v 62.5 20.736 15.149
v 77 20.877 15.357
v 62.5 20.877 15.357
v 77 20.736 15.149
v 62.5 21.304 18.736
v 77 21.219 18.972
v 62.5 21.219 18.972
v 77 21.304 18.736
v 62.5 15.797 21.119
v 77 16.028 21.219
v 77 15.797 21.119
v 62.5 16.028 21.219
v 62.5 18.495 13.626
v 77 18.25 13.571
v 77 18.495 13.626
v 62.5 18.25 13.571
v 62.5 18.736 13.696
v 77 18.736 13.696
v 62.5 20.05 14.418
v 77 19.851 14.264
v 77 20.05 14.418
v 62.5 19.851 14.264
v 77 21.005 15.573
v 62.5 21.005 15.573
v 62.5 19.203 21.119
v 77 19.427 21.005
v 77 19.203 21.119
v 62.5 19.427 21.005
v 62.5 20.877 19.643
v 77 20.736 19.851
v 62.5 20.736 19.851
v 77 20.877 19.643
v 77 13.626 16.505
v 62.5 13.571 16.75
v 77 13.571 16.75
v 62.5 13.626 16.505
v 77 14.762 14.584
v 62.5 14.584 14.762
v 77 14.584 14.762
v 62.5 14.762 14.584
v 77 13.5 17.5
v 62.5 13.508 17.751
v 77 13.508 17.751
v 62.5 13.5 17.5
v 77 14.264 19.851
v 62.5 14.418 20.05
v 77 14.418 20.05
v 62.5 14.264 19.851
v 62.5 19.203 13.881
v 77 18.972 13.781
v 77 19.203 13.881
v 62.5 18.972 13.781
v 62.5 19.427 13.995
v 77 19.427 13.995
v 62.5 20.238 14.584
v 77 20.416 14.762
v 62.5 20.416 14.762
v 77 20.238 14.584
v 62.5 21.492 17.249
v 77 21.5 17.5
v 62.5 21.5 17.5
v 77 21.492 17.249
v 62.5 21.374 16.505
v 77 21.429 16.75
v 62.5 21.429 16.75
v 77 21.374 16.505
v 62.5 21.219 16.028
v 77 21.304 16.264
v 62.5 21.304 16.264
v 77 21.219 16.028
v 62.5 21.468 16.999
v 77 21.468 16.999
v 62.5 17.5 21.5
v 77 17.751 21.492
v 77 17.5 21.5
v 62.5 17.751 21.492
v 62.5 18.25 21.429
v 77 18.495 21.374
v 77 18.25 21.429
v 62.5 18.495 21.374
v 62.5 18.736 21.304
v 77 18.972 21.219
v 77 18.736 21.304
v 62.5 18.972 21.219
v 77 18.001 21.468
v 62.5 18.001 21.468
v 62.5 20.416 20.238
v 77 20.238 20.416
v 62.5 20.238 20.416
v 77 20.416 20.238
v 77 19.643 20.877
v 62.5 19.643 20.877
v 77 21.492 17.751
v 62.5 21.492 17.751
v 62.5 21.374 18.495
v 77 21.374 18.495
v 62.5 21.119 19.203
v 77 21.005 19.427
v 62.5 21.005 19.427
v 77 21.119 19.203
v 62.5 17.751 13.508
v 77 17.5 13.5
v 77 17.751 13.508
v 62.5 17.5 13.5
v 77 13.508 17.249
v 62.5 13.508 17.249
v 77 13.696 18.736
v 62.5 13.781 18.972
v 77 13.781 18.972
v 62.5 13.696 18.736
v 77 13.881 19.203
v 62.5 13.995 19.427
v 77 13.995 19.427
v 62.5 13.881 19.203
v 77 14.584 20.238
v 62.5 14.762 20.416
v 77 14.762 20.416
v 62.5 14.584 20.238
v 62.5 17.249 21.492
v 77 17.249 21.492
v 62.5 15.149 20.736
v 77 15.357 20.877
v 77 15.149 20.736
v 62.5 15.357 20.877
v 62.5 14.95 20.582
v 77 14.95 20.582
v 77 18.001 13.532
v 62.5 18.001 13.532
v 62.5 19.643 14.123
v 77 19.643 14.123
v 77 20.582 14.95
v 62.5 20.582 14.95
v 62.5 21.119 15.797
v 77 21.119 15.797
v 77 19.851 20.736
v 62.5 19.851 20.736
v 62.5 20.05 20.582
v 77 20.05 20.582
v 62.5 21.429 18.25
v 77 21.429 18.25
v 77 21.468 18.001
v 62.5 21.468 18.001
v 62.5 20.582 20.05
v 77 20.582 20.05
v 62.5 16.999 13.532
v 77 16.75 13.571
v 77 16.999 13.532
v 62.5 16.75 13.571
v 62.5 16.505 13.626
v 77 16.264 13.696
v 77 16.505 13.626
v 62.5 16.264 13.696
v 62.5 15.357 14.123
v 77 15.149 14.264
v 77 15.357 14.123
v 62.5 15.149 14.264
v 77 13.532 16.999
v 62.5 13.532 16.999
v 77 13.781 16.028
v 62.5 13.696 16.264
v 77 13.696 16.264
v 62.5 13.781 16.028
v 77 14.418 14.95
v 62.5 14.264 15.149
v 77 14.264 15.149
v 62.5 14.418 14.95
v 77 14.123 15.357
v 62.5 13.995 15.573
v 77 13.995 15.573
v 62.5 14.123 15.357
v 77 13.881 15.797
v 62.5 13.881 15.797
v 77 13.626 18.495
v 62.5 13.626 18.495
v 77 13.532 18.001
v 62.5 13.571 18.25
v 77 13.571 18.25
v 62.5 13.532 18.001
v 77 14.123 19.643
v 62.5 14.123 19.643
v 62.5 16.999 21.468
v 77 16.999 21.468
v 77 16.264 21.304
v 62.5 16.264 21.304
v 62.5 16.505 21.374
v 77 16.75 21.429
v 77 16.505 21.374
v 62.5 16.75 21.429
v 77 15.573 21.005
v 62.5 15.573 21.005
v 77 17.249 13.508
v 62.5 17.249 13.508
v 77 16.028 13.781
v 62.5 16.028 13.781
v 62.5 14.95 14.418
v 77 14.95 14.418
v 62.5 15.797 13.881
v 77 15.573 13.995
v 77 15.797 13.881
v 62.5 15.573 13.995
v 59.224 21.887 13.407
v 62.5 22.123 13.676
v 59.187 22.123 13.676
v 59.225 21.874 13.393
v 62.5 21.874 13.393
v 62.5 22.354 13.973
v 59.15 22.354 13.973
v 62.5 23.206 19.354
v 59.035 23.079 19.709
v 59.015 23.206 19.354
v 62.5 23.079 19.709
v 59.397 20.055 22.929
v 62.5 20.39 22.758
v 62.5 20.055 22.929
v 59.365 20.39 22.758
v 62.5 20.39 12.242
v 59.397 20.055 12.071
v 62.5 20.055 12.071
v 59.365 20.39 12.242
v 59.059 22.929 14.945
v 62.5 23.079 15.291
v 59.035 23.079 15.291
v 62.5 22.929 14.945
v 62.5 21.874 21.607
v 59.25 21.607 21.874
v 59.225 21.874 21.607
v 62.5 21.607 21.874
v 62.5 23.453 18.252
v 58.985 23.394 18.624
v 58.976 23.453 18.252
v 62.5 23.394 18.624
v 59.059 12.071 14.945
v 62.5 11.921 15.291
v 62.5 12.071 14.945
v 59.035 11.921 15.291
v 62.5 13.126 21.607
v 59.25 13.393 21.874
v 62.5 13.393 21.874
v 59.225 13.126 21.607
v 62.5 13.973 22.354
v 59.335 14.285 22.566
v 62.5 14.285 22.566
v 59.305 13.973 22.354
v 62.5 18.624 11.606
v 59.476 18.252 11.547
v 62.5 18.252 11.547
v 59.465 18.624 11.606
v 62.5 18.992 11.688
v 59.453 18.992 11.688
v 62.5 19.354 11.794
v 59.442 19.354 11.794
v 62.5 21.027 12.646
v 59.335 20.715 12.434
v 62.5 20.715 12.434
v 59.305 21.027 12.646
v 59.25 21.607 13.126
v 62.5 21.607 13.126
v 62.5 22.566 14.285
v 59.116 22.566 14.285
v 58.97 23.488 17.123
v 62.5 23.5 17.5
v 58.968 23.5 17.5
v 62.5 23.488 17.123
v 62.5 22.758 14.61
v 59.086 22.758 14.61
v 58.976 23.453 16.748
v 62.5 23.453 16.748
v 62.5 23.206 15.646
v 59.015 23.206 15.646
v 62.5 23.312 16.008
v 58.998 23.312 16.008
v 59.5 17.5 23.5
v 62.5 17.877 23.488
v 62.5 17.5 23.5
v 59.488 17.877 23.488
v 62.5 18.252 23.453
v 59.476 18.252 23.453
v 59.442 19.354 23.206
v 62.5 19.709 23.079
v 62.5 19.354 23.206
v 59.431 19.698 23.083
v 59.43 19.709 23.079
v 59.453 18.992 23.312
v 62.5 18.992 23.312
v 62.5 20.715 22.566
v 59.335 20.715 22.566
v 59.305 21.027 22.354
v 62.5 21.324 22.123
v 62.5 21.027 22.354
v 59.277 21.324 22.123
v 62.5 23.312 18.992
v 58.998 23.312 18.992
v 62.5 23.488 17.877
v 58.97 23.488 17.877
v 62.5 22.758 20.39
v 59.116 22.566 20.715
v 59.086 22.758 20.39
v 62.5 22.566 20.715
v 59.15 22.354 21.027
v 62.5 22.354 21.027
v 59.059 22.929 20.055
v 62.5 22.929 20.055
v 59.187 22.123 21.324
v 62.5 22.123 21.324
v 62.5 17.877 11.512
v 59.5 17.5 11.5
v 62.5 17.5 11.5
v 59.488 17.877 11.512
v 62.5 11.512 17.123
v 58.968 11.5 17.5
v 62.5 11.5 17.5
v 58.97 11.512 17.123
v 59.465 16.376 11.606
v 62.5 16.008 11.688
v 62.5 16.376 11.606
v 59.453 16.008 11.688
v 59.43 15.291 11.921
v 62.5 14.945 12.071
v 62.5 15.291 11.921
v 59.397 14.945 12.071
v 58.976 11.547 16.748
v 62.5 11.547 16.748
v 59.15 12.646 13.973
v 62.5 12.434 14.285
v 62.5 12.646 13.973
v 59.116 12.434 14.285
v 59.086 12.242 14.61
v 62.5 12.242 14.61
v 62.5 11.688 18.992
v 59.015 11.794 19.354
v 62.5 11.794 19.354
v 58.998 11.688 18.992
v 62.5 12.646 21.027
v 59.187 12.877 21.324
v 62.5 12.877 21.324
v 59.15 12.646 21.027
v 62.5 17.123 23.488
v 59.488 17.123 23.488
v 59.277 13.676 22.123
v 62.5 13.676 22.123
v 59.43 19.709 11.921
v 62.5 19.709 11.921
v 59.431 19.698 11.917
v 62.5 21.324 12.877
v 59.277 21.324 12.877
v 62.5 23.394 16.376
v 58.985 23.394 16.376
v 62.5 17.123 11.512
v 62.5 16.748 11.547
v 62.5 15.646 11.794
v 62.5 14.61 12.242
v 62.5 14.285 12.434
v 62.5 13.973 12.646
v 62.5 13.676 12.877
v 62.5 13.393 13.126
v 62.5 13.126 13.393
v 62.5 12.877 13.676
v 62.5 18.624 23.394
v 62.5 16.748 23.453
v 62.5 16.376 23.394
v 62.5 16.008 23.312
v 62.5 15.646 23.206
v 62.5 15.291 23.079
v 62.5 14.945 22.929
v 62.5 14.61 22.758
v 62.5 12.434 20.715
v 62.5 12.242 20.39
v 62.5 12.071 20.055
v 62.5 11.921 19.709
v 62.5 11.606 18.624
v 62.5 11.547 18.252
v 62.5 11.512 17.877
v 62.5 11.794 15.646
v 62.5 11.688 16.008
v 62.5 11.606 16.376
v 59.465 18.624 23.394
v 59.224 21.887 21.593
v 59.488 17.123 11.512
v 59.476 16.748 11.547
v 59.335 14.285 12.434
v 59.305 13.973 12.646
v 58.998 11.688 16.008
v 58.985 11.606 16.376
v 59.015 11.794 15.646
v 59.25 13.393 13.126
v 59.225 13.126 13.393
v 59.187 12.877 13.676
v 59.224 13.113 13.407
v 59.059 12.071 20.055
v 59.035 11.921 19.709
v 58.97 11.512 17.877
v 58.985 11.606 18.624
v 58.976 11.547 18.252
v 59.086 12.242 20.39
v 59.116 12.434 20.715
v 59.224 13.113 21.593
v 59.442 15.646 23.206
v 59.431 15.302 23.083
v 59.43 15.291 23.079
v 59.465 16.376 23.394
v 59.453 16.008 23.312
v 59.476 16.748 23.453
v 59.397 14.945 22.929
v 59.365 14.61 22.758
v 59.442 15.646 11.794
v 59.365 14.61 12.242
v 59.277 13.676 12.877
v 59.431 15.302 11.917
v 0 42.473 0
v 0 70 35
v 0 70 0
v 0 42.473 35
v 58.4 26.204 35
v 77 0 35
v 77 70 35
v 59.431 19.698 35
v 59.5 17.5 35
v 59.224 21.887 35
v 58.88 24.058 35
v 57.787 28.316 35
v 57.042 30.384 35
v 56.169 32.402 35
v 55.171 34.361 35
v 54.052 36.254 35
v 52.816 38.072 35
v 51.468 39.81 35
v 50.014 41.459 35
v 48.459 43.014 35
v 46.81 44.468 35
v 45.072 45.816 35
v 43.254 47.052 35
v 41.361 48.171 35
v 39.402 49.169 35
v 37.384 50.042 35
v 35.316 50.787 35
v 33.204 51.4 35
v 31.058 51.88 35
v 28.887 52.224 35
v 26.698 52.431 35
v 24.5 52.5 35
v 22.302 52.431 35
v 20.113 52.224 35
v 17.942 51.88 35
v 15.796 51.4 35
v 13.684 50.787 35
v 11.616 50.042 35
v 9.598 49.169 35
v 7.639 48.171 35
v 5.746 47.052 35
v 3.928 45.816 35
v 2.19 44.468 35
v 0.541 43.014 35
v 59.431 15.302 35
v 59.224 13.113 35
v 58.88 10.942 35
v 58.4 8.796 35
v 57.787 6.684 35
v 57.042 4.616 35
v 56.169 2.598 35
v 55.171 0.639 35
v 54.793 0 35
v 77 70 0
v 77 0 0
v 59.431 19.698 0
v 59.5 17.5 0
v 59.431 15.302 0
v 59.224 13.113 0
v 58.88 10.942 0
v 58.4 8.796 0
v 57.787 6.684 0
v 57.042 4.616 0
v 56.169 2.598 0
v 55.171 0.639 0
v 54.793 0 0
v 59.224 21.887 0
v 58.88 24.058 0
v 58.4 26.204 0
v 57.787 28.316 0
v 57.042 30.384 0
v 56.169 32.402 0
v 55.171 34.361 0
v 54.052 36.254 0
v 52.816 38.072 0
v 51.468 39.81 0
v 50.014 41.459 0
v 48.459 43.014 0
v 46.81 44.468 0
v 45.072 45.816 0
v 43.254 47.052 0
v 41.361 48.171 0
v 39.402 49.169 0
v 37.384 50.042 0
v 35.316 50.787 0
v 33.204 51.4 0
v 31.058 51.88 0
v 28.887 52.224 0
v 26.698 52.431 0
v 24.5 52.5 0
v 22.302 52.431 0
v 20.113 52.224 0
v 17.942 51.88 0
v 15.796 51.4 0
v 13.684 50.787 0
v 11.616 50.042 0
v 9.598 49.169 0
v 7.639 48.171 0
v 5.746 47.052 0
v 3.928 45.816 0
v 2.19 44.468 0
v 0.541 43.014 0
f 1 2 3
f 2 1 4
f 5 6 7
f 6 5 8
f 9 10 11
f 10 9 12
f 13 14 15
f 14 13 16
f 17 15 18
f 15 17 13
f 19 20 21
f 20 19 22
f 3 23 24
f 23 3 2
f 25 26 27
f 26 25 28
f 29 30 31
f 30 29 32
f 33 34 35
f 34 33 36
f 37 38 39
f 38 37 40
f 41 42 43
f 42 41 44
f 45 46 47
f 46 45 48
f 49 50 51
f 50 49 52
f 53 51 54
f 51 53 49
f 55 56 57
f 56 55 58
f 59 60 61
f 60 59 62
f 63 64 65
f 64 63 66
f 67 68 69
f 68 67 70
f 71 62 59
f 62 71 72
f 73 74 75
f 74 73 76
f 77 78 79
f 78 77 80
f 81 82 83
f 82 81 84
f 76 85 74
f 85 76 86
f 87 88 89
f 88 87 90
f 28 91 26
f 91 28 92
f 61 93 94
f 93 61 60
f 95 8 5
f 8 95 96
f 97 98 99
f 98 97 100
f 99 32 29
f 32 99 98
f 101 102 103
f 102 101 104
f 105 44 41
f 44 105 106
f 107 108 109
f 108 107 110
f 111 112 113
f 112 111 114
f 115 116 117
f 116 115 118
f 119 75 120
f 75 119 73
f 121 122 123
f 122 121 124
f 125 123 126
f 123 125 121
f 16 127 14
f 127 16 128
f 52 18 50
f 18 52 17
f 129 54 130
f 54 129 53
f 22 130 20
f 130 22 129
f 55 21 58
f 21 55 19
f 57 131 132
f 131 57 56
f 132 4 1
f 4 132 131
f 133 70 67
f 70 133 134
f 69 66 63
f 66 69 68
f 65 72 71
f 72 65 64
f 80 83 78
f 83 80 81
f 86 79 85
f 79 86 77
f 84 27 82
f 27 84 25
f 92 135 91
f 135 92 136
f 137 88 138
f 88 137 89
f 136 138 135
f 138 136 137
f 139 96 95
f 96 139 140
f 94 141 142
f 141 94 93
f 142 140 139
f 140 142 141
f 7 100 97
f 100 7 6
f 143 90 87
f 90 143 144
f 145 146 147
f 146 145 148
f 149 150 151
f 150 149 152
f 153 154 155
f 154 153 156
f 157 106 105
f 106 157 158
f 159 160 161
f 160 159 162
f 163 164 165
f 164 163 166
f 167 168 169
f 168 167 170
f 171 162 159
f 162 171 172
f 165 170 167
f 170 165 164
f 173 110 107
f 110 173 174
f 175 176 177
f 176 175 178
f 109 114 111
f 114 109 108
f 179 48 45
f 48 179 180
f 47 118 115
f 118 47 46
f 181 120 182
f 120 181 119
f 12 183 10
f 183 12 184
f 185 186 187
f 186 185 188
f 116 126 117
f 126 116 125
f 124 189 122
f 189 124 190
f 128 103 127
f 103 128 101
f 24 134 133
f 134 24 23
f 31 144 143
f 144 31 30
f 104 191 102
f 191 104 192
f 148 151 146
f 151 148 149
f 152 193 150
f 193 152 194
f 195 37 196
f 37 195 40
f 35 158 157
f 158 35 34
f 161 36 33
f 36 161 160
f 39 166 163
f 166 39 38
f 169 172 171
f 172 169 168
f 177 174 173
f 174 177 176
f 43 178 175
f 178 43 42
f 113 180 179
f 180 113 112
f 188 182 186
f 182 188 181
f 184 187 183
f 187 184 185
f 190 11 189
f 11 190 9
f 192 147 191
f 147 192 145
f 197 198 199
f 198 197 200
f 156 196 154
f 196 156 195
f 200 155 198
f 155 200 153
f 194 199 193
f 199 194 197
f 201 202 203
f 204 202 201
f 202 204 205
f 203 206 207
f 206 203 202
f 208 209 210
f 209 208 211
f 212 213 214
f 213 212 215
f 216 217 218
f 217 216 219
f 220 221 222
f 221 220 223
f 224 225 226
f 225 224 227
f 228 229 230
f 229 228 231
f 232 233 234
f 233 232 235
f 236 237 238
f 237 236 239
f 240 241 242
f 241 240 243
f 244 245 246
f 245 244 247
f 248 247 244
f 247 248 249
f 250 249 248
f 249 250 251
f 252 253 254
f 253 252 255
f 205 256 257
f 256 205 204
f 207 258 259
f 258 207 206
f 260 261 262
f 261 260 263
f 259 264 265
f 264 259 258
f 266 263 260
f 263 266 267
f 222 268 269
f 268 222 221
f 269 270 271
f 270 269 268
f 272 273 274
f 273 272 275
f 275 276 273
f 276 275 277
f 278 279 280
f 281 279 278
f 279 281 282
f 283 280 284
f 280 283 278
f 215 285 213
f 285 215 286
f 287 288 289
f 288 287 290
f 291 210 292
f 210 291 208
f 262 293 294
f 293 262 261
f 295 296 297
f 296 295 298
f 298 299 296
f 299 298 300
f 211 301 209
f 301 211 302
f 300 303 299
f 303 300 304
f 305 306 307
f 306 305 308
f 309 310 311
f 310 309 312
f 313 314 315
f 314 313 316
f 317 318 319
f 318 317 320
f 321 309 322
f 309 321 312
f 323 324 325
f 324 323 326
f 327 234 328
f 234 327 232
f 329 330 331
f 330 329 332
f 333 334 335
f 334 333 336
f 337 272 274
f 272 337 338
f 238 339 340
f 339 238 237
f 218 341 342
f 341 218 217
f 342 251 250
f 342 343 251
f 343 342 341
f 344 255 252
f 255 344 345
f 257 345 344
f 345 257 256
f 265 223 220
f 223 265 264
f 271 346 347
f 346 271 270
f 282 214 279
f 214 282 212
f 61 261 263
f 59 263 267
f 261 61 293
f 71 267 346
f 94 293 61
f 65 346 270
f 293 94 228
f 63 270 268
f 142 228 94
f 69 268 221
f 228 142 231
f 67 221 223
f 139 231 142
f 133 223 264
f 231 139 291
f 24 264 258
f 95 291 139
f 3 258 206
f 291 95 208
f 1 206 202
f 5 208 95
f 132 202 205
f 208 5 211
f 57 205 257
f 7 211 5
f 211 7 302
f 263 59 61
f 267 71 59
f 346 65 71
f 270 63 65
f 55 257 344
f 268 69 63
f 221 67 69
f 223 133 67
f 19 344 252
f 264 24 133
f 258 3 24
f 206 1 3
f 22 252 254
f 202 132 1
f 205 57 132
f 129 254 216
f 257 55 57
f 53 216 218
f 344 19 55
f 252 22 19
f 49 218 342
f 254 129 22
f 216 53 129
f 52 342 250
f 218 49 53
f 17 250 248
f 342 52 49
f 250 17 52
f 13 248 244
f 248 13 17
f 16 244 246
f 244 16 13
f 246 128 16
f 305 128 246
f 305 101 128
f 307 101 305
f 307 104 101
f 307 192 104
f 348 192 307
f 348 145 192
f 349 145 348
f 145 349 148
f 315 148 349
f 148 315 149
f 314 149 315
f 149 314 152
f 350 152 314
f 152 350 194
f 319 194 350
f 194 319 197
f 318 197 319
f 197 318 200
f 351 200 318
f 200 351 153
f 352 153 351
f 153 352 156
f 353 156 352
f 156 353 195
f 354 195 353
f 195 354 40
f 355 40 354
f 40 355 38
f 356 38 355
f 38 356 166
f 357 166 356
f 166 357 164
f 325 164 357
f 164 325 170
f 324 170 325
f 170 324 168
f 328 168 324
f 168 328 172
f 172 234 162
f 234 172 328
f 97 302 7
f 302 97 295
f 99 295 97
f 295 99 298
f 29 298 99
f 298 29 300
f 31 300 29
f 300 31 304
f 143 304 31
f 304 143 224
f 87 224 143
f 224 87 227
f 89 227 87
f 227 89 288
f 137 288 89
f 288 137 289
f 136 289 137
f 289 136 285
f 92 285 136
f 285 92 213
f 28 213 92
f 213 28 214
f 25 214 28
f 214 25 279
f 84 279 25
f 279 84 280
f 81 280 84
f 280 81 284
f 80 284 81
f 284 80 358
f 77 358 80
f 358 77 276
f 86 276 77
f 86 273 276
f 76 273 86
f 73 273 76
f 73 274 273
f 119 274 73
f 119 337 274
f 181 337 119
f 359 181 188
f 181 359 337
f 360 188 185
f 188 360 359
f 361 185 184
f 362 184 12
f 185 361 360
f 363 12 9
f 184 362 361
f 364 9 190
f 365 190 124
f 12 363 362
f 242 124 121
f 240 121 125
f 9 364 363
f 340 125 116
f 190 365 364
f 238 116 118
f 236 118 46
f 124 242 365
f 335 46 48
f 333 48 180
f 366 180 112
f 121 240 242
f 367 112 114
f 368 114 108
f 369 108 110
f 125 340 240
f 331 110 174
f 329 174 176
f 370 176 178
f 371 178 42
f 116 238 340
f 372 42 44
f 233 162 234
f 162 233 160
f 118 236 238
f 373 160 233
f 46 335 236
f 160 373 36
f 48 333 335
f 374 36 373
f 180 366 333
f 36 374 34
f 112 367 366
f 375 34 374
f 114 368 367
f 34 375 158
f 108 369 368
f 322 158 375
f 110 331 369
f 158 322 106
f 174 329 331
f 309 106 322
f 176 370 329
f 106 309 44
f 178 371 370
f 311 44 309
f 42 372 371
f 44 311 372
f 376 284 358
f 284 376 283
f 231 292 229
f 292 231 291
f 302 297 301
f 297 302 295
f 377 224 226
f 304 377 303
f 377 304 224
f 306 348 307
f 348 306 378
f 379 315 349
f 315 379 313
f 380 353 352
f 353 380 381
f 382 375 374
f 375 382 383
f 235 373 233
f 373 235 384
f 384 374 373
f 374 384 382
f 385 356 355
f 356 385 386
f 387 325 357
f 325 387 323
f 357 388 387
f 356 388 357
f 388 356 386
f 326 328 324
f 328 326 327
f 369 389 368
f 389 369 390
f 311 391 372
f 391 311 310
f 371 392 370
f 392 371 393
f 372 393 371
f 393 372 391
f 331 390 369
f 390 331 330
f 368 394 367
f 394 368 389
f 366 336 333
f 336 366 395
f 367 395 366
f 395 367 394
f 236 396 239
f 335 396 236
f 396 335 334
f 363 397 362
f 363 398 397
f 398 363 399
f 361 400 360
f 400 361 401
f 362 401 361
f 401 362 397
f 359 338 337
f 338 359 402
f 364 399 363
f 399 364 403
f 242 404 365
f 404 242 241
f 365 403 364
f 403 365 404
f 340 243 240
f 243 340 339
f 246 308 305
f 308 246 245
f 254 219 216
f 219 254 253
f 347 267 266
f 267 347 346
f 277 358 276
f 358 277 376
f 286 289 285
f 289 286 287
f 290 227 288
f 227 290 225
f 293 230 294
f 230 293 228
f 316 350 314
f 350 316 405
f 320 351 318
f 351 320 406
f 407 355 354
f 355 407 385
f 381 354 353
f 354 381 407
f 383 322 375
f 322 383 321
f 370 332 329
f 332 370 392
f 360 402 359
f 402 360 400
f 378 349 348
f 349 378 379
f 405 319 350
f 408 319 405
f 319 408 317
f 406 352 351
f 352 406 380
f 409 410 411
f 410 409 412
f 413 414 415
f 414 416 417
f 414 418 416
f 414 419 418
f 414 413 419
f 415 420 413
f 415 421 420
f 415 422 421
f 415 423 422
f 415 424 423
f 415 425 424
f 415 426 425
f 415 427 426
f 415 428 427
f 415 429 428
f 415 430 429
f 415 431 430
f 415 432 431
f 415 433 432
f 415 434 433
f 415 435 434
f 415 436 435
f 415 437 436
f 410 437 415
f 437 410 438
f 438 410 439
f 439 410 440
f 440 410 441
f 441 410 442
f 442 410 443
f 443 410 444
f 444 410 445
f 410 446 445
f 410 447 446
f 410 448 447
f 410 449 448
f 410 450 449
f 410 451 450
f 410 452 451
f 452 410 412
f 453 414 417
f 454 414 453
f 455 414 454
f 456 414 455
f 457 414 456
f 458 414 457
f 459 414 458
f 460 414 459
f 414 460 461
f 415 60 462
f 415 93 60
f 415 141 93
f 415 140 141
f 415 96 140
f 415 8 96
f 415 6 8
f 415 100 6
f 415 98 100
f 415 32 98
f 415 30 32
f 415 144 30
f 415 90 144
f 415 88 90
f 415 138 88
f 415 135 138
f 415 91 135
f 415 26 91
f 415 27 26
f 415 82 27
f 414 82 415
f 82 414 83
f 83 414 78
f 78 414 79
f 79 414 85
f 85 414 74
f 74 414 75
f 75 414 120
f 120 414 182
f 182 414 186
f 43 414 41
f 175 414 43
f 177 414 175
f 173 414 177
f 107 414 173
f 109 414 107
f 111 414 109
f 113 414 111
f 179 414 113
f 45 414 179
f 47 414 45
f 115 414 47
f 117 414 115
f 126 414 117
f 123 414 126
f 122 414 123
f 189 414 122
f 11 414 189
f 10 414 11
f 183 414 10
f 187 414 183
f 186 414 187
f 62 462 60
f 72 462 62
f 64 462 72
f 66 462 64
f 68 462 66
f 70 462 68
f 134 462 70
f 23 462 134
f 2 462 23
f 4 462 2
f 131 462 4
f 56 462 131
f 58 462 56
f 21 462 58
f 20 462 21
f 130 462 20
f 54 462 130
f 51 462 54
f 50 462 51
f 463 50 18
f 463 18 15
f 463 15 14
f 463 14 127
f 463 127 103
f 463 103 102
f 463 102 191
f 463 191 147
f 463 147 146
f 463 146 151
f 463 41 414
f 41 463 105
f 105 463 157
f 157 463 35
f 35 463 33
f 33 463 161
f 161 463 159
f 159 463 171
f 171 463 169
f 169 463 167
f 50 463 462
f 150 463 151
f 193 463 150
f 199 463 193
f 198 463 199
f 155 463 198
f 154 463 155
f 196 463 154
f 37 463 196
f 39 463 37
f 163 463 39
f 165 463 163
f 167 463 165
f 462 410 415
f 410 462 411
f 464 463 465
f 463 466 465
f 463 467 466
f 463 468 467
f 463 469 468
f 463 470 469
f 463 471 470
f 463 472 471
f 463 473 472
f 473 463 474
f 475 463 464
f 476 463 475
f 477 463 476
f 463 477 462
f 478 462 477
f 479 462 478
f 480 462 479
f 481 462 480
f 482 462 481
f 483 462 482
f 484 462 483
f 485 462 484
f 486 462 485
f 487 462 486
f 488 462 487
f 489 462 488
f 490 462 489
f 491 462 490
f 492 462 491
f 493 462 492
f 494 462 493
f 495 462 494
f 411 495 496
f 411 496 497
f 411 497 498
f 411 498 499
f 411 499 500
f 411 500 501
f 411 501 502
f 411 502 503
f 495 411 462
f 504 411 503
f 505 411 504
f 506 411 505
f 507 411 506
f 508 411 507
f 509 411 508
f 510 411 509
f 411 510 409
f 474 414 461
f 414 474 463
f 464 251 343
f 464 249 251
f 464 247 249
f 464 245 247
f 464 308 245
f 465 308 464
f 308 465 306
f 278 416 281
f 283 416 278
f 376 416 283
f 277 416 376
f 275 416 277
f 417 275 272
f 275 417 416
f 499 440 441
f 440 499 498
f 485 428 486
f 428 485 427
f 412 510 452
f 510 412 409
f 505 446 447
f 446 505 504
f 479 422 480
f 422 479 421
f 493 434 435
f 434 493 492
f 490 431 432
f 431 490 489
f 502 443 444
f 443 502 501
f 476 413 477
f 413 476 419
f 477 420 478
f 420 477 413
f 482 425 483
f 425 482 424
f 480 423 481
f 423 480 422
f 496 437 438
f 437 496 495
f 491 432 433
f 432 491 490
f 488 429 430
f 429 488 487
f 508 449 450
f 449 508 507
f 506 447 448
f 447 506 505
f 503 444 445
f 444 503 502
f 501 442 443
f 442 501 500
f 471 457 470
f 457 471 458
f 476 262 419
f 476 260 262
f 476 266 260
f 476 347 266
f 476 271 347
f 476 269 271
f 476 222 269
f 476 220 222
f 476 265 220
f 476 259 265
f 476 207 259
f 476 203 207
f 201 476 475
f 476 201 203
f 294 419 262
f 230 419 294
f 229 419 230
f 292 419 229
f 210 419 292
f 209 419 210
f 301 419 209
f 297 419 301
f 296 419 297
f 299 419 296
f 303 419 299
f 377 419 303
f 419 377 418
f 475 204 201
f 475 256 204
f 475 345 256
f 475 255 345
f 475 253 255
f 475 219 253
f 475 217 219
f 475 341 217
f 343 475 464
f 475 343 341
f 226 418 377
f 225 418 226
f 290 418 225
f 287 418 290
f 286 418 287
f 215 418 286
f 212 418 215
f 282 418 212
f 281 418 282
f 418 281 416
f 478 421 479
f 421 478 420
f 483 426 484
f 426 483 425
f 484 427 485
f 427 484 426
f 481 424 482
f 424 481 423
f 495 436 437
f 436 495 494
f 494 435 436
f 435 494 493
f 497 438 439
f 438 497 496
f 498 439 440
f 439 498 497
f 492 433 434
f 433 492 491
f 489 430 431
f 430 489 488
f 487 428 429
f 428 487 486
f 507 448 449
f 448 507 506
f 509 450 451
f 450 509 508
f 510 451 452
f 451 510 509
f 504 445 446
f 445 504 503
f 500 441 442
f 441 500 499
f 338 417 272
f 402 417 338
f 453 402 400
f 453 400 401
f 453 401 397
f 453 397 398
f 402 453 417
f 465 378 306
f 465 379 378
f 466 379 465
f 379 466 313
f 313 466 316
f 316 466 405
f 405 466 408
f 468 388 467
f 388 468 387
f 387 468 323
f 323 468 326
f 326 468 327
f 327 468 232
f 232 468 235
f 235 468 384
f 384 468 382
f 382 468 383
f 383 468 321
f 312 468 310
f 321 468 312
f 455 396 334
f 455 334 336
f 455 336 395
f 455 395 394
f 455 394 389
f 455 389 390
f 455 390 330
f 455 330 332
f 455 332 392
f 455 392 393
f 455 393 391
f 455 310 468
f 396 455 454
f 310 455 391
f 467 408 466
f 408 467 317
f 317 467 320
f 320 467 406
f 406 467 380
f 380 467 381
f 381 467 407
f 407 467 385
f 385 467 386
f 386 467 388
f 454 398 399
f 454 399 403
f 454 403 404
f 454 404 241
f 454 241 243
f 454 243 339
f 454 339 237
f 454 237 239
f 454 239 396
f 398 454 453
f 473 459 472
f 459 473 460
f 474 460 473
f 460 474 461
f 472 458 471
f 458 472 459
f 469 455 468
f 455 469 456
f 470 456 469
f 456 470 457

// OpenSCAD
$fn = 100;
wheel = 70;
height = wheel/2;

difference() {
    cube([wheel*1.1, wheel, height]);
    translate([(wheel/4)*1.4, wheel/4, 0]) {
        cylinder(height,wheel/2,wheel/2);
    }
    
    // screew hole
    translate([(wheel/4)*1.4 + wheel/2 - 1, wheel/4, height/2]) {
        rotate([0,90,0]){    
            cylinder(height,4,4);
            cylinder(4,6,6);
        }
   }       
}
 
